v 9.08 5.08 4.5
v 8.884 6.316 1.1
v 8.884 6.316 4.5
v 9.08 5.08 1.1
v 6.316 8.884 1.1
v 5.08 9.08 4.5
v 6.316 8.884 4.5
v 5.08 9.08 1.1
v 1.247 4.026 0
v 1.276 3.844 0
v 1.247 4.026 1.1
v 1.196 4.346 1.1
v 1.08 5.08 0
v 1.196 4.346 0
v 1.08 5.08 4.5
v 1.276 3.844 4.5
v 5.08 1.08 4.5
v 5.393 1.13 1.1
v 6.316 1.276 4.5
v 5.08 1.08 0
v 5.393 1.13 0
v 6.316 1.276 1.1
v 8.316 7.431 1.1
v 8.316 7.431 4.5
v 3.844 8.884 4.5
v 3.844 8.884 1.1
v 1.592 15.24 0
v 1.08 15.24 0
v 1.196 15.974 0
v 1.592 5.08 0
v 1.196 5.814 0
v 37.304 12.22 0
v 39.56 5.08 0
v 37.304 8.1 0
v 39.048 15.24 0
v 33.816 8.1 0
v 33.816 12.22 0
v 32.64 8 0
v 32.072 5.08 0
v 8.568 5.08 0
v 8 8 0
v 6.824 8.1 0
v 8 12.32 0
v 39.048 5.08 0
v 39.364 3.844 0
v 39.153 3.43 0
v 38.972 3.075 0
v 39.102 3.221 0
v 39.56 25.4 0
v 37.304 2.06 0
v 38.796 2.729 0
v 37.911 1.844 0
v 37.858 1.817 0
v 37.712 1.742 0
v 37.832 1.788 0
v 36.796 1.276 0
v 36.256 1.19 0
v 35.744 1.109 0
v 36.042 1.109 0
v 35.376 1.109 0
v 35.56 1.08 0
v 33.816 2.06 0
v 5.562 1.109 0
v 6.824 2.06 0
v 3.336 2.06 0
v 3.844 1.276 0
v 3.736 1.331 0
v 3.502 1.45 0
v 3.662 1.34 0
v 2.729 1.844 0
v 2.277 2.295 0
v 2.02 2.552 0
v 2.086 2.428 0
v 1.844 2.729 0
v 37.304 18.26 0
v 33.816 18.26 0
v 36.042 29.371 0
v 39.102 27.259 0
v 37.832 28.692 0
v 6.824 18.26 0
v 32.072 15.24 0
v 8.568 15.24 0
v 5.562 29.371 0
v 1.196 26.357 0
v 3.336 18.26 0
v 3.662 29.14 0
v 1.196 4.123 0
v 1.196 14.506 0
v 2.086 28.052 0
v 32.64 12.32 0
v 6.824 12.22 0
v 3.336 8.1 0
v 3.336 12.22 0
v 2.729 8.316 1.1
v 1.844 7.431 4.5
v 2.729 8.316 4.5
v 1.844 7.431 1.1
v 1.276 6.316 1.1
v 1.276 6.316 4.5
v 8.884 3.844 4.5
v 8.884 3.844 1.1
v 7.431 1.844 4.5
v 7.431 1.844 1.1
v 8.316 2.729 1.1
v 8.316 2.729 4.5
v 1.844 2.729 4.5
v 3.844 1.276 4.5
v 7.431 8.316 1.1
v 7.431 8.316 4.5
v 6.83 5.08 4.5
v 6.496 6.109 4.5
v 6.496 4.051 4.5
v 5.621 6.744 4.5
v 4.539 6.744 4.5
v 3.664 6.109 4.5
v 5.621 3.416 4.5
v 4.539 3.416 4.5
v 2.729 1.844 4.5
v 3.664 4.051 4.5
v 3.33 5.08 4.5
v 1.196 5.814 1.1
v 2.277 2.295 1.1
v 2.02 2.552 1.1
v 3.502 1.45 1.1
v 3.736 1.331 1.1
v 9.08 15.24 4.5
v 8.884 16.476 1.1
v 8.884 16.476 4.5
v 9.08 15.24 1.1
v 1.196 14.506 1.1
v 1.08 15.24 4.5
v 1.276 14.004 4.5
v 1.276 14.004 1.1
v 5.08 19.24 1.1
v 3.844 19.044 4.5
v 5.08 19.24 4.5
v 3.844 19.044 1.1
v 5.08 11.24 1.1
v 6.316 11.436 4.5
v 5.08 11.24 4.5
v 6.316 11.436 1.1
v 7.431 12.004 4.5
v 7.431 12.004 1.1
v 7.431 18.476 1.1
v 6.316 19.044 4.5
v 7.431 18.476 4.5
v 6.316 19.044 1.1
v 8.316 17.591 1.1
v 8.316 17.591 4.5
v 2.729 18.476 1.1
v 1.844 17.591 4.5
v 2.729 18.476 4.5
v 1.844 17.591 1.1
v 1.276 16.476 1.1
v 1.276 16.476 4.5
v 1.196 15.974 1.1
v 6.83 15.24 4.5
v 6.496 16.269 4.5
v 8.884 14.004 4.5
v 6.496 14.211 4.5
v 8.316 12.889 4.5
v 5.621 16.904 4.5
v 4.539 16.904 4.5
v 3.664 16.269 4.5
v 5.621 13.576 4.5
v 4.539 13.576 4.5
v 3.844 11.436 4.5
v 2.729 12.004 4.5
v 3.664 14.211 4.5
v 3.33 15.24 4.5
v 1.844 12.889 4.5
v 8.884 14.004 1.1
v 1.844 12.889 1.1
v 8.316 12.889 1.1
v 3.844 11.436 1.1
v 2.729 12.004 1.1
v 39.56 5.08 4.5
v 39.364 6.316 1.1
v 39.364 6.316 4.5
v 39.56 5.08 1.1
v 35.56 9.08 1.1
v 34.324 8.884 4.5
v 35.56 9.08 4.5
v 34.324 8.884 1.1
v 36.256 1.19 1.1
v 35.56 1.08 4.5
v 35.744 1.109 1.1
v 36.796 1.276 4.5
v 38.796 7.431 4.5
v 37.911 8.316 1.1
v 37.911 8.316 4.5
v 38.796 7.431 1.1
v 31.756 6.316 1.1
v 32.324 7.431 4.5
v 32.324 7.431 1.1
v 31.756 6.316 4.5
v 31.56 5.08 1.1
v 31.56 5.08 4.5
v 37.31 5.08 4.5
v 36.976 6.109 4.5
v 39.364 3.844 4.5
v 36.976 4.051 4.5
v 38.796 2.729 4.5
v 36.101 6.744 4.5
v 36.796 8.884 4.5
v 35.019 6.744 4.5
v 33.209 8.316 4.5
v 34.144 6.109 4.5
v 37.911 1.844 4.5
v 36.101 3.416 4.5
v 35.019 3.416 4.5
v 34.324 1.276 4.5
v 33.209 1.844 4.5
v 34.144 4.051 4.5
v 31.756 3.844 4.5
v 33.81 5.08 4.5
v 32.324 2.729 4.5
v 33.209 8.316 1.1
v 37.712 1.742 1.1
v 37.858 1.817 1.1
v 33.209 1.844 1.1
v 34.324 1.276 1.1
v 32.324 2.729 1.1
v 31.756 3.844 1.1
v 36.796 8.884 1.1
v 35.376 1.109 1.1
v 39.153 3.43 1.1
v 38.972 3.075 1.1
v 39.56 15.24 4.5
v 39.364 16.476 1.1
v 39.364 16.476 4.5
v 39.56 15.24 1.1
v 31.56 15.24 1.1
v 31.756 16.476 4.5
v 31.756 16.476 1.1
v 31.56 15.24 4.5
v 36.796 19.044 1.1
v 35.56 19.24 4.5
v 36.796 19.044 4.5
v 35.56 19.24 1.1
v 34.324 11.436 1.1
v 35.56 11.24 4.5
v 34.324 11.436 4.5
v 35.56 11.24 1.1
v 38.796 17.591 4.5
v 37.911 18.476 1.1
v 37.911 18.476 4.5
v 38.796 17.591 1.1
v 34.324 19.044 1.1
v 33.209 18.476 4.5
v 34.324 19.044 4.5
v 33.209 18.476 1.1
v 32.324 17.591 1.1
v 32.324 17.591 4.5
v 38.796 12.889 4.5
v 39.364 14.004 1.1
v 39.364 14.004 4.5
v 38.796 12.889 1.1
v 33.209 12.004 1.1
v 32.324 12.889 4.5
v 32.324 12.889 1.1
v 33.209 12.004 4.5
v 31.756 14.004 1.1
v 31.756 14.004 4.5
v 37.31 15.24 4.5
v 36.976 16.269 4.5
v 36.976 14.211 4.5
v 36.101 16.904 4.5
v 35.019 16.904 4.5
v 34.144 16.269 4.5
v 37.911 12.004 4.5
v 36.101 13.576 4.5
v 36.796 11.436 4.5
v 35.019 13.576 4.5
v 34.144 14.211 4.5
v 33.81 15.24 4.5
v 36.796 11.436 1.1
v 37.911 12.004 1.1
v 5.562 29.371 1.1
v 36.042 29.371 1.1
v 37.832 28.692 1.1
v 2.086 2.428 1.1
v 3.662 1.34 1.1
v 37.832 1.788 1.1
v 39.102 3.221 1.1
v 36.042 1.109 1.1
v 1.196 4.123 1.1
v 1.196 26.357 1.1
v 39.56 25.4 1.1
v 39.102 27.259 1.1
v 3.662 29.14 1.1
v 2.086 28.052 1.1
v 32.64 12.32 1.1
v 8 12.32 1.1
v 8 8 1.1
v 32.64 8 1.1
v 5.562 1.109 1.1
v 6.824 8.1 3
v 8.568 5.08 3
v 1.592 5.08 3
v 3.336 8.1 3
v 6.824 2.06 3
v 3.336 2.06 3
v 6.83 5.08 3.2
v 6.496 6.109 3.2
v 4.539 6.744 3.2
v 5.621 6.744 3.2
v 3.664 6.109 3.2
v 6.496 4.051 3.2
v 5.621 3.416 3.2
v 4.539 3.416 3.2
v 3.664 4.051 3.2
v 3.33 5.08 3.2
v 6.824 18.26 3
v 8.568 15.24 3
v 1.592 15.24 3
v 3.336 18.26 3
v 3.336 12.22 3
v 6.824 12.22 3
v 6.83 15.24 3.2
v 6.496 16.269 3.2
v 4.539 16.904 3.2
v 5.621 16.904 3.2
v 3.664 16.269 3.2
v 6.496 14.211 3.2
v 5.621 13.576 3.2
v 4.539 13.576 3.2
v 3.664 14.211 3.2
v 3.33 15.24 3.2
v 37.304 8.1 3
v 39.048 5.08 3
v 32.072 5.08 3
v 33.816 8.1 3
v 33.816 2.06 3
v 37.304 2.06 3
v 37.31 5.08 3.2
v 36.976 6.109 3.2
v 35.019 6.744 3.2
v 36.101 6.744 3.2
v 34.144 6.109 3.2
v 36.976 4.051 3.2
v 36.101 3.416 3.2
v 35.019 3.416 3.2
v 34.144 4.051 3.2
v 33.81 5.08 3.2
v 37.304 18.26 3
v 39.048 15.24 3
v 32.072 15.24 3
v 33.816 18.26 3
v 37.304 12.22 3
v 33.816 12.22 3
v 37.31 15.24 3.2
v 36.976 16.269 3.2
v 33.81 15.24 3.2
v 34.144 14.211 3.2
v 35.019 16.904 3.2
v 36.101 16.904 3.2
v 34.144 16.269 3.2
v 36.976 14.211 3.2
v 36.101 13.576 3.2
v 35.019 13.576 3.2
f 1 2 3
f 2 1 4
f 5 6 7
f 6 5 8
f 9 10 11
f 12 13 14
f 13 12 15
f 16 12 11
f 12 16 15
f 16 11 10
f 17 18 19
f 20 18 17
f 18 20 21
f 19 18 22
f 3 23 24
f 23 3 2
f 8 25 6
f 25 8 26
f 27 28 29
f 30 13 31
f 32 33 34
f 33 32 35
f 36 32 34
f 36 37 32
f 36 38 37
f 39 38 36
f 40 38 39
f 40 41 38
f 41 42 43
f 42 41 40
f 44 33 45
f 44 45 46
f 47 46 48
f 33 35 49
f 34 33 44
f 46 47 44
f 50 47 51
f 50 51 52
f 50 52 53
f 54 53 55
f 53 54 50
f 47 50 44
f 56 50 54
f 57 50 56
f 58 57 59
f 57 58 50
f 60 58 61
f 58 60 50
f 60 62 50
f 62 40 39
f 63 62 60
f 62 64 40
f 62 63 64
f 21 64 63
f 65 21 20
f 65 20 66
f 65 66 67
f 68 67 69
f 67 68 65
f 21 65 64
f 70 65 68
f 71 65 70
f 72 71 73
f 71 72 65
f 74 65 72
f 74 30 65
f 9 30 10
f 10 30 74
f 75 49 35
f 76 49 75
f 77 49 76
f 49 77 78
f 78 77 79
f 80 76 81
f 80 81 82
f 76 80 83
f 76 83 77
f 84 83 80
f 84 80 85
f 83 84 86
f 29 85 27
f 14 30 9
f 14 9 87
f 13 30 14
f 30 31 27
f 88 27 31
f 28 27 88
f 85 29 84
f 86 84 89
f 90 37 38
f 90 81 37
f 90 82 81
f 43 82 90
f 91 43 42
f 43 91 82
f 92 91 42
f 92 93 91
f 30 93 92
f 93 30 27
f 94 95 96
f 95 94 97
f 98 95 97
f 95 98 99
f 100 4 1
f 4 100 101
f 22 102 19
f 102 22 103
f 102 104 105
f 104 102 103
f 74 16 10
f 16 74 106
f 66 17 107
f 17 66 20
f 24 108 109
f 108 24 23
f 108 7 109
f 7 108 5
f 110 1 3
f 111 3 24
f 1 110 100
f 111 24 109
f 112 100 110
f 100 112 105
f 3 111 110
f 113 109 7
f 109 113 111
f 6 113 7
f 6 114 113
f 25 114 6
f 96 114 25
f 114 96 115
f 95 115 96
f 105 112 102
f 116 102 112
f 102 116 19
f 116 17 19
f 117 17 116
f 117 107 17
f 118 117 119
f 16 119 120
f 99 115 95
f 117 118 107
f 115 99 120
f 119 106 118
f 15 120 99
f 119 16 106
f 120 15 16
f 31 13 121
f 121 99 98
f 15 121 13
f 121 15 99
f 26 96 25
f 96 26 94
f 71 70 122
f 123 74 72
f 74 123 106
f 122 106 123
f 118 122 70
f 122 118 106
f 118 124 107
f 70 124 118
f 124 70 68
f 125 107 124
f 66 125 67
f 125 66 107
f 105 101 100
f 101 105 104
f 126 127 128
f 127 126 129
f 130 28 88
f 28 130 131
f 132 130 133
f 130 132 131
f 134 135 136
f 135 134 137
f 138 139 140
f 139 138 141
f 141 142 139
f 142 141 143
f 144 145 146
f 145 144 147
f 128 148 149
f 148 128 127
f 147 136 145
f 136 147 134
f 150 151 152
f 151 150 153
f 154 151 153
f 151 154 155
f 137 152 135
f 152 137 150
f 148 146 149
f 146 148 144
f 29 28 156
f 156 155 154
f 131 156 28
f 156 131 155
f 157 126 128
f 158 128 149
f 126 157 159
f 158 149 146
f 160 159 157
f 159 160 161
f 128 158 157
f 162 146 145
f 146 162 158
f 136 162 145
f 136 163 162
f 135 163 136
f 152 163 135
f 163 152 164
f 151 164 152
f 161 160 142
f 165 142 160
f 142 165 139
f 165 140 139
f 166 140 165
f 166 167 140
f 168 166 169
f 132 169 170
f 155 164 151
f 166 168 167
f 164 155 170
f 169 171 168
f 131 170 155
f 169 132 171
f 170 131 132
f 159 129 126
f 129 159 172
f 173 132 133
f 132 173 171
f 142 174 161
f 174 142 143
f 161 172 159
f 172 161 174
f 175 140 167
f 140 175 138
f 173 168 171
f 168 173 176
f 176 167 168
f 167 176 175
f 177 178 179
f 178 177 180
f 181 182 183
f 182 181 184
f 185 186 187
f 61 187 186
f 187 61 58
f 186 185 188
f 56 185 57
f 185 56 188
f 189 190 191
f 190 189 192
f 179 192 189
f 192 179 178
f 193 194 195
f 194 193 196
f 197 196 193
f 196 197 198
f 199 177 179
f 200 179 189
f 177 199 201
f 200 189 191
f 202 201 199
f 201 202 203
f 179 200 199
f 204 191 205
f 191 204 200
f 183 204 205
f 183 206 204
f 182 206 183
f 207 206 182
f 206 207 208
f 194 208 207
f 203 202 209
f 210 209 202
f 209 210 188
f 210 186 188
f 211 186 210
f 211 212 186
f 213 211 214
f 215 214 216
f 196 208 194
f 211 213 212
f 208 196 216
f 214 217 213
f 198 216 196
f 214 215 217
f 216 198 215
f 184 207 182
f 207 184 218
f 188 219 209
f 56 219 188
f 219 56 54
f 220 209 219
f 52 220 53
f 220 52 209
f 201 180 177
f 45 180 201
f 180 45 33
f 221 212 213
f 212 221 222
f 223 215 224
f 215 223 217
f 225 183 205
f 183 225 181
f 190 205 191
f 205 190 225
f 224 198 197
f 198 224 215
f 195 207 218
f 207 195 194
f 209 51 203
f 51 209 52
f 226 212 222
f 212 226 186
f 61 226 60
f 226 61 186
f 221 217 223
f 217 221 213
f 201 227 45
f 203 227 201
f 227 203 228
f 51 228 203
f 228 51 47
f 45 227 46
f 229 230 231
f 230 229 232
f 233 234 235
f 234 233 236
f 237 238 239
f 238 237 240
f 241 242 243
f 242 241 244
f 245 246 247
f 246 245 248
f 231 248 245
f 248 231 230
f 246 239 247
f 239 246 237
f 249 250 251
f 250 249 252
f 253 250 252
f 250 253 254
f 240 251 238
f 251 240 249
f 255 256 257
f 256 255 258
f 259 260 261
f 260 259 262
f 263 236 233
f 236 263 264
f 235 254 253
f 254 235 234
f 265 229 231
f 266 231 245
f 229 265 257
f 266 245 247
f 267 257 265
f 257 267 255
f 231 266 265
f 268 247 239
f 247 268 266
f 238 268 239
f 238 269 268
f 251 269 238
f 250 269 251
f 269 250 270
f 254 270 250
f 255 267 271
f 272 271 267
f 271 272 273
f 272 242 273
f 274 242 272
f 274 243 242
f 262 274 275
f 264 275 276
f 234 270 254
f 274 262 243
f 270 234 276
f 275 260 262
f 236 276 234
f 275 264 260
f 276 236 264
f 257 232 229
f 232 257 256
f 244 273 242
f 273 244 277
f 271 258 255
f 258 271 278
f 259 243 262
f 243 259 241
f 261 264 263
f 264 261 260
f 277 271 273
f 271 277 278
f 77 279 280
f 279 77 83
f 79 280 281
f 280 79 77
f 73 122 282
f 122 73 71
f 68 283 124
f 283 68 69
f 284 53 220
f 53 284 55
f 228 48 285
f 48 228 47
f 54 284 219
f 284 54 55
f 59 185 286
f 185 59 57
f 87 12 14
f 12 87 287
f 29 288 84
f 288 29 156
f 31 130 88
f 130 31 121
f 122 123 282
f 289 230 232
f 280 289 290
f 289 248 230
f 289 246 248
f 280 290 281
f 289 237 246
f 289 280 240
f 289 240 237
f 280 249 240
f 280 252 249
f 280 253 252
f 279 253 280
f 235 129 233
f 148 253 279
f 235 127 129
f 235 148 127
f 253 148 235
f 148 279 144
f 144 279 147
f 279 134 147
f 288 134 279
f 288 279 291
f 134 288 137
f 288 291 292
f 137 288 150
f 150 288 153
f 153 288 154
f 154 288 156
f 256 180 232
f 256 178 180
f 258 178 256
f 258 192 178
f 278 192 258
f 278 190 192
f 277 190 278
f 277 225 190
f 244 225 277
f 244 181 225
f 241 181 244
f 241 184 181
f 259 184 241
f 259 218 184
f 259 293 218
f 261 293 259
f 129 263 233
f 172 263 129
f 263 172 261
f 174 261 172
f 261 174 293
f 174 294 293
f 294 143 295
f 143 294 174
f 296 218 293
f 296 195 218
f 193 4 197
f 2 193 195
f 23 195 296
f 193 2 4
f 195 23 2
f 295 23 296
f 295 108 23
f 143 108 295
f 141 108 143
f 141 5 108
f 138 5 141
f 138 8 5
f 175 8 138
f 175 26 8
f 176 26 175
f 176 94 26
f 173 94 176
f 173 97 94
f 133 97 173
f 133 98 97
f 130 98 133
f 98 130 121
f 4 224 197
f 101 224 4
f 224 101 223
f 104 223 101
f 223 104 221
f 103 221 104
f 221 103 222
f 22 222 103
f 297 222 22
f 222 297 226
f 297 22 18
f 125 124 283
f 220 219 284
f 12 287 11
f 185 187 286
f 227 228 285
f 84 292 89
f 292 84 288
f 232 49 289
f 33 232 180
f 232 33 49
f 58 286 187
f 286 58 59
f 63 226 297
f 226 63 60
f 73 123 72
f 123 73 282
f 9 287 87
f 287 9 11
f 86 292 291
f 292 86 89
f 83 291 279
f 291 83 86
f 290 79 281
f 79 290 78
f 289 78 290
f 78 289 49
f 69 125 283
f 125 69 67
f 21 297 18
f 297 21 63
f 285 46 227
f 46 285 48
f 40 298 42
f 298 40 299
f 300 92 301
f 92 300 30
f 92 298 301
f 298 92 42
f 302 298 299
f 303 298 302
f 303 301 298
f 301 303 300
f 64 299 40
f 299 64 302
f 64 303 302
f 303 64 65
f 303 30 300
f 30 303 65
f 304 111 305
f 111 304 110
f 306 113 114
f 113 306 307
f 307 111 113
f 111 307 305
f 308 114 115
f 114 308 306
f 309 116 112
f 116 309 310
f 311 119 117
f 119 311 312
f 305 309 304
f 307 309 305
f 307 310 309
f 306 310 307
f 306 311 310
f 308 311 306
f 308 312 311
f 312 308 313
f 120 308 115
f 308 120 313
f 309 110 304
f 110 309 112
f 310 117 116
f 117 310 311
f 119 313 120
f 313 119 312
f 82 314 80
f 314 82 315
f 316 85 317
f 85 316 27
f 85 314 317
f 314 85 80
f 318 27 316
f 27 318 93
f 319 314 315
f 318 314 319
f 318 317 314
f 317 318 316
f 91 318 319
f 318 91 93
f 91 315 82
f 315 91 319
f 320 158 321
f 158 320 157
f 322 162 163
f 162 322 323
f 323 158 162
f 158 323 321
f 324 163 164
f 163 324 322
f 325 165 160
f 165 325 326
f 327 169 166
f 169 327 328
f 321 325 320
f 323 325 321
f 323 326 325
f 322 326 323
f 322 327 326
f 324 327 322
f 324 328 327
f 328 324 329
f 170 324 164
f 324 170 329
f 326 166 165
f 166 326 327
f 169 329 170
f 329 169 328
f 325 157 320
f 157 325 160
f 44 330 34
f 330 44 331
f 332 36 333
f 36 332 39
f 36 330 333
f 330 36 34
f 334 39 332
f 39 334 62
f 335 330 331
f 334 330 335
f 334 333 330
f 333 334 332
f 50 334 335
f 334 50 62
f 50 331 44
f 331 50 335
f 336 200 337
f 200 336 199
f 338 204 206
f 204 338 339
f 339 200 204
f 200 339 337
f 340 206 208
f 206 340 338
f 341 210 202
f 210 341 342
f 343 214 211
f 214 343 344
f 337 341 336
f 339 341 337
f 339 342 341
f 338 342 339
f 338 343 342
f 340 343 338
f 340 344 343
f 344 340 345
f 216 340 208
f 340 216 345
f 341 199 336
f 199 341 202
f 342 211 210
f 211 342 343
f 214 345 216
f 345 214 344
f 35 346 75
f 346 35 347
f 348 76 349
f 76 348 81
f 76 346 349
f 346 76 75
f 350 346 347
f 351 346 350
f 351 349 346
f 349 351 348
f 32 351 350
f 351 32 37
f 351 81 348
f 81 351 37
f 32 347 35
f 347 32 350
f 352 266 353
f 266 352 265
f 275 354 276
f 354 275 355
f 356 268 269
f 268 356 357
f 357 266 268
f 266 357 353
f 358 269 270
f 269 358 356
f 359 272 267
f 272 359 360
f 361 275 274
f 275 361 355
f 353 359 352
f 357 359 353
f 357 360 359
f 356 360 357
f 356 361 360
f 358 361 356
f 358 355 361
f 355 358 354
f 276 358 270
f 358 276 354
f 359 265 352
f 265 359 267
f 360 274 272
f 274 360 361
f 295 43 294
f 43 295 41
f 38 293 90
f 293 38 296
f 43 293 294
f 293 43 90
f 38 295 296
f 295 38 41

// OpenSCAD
x_holes = 4;
y_holes = 3;
MLAB_grid = 10.16;
pile_radius = 4;
pedestal_height = 4.5;   // designed for use the MLAB standard 20mm screws.
x_size = x_holes * MLAB_grid ;
y_size = (y_holes-1) * MLAB_grid ;
mount_hole = 3.5;
nut_size = 6.8;  //size suitable for PLA material
//nut_size = 6.7;  //size suitable for ABS material
clear = 0.175;


thickness = 1;

MLAB_grid_xoffset = MLAB_grid/2;
MLAB_grid_yoffset = MLAB_grid/2;

grid_list = [for (j = [MLAB_grid_xoffset : MLAB_grid: x_size], i = [MLAB_grid_yoffset :MLAB_grid: y_size]) 
if ((j>(x_size-10) && i>(y_size-10)) || (j<10 && i<10) || (j<10 && i>(y_size-10)) || (j>(x_size-10) && i<10) ) [j, i] ];


difference () {
    union () {
        for (j = grid_list) {
            translate (concat(j, [0]))
            cylinder (h = pedestal_height, r= pile_radius, $fn=20);
        }

y_size = (y_holes) * MLAB_grid ;
            translate ([MLAB_grid_xoffset , MLAB_grid_yoffset , 0])
                minkowski() {
                cube([x_size - 2*(MLAB_grid/2 - pile_radius) - 2*pile_radius, y_size - 2*(MLAB_grid/2 - pile_radius) - 2*pile_radius, thickness]);          // base plastics brick
                cylinder(r=pile_radius,h=0.1);
            }
    }
    
    translate ([2*pile_radius, 2*pile_radius, 0]) // central hole in module support
        cube([x_size-4*pile_radius, y_size-4*pile_radius, 2*thickness]);          

    // MLAB grid holes
    for (j = grid_list) {
            translate (concat(j, [0]))
            cylinder (h = 3, r= (nut_size+clear)/2, $fn=6);
            translate (concat(j, [3.2]))  // one solid layer for slicer (the holes will be pierced on demand )
            cylinder (h = pedestal_height, r= mount_hole/2, $fn=10);
        }    
}
